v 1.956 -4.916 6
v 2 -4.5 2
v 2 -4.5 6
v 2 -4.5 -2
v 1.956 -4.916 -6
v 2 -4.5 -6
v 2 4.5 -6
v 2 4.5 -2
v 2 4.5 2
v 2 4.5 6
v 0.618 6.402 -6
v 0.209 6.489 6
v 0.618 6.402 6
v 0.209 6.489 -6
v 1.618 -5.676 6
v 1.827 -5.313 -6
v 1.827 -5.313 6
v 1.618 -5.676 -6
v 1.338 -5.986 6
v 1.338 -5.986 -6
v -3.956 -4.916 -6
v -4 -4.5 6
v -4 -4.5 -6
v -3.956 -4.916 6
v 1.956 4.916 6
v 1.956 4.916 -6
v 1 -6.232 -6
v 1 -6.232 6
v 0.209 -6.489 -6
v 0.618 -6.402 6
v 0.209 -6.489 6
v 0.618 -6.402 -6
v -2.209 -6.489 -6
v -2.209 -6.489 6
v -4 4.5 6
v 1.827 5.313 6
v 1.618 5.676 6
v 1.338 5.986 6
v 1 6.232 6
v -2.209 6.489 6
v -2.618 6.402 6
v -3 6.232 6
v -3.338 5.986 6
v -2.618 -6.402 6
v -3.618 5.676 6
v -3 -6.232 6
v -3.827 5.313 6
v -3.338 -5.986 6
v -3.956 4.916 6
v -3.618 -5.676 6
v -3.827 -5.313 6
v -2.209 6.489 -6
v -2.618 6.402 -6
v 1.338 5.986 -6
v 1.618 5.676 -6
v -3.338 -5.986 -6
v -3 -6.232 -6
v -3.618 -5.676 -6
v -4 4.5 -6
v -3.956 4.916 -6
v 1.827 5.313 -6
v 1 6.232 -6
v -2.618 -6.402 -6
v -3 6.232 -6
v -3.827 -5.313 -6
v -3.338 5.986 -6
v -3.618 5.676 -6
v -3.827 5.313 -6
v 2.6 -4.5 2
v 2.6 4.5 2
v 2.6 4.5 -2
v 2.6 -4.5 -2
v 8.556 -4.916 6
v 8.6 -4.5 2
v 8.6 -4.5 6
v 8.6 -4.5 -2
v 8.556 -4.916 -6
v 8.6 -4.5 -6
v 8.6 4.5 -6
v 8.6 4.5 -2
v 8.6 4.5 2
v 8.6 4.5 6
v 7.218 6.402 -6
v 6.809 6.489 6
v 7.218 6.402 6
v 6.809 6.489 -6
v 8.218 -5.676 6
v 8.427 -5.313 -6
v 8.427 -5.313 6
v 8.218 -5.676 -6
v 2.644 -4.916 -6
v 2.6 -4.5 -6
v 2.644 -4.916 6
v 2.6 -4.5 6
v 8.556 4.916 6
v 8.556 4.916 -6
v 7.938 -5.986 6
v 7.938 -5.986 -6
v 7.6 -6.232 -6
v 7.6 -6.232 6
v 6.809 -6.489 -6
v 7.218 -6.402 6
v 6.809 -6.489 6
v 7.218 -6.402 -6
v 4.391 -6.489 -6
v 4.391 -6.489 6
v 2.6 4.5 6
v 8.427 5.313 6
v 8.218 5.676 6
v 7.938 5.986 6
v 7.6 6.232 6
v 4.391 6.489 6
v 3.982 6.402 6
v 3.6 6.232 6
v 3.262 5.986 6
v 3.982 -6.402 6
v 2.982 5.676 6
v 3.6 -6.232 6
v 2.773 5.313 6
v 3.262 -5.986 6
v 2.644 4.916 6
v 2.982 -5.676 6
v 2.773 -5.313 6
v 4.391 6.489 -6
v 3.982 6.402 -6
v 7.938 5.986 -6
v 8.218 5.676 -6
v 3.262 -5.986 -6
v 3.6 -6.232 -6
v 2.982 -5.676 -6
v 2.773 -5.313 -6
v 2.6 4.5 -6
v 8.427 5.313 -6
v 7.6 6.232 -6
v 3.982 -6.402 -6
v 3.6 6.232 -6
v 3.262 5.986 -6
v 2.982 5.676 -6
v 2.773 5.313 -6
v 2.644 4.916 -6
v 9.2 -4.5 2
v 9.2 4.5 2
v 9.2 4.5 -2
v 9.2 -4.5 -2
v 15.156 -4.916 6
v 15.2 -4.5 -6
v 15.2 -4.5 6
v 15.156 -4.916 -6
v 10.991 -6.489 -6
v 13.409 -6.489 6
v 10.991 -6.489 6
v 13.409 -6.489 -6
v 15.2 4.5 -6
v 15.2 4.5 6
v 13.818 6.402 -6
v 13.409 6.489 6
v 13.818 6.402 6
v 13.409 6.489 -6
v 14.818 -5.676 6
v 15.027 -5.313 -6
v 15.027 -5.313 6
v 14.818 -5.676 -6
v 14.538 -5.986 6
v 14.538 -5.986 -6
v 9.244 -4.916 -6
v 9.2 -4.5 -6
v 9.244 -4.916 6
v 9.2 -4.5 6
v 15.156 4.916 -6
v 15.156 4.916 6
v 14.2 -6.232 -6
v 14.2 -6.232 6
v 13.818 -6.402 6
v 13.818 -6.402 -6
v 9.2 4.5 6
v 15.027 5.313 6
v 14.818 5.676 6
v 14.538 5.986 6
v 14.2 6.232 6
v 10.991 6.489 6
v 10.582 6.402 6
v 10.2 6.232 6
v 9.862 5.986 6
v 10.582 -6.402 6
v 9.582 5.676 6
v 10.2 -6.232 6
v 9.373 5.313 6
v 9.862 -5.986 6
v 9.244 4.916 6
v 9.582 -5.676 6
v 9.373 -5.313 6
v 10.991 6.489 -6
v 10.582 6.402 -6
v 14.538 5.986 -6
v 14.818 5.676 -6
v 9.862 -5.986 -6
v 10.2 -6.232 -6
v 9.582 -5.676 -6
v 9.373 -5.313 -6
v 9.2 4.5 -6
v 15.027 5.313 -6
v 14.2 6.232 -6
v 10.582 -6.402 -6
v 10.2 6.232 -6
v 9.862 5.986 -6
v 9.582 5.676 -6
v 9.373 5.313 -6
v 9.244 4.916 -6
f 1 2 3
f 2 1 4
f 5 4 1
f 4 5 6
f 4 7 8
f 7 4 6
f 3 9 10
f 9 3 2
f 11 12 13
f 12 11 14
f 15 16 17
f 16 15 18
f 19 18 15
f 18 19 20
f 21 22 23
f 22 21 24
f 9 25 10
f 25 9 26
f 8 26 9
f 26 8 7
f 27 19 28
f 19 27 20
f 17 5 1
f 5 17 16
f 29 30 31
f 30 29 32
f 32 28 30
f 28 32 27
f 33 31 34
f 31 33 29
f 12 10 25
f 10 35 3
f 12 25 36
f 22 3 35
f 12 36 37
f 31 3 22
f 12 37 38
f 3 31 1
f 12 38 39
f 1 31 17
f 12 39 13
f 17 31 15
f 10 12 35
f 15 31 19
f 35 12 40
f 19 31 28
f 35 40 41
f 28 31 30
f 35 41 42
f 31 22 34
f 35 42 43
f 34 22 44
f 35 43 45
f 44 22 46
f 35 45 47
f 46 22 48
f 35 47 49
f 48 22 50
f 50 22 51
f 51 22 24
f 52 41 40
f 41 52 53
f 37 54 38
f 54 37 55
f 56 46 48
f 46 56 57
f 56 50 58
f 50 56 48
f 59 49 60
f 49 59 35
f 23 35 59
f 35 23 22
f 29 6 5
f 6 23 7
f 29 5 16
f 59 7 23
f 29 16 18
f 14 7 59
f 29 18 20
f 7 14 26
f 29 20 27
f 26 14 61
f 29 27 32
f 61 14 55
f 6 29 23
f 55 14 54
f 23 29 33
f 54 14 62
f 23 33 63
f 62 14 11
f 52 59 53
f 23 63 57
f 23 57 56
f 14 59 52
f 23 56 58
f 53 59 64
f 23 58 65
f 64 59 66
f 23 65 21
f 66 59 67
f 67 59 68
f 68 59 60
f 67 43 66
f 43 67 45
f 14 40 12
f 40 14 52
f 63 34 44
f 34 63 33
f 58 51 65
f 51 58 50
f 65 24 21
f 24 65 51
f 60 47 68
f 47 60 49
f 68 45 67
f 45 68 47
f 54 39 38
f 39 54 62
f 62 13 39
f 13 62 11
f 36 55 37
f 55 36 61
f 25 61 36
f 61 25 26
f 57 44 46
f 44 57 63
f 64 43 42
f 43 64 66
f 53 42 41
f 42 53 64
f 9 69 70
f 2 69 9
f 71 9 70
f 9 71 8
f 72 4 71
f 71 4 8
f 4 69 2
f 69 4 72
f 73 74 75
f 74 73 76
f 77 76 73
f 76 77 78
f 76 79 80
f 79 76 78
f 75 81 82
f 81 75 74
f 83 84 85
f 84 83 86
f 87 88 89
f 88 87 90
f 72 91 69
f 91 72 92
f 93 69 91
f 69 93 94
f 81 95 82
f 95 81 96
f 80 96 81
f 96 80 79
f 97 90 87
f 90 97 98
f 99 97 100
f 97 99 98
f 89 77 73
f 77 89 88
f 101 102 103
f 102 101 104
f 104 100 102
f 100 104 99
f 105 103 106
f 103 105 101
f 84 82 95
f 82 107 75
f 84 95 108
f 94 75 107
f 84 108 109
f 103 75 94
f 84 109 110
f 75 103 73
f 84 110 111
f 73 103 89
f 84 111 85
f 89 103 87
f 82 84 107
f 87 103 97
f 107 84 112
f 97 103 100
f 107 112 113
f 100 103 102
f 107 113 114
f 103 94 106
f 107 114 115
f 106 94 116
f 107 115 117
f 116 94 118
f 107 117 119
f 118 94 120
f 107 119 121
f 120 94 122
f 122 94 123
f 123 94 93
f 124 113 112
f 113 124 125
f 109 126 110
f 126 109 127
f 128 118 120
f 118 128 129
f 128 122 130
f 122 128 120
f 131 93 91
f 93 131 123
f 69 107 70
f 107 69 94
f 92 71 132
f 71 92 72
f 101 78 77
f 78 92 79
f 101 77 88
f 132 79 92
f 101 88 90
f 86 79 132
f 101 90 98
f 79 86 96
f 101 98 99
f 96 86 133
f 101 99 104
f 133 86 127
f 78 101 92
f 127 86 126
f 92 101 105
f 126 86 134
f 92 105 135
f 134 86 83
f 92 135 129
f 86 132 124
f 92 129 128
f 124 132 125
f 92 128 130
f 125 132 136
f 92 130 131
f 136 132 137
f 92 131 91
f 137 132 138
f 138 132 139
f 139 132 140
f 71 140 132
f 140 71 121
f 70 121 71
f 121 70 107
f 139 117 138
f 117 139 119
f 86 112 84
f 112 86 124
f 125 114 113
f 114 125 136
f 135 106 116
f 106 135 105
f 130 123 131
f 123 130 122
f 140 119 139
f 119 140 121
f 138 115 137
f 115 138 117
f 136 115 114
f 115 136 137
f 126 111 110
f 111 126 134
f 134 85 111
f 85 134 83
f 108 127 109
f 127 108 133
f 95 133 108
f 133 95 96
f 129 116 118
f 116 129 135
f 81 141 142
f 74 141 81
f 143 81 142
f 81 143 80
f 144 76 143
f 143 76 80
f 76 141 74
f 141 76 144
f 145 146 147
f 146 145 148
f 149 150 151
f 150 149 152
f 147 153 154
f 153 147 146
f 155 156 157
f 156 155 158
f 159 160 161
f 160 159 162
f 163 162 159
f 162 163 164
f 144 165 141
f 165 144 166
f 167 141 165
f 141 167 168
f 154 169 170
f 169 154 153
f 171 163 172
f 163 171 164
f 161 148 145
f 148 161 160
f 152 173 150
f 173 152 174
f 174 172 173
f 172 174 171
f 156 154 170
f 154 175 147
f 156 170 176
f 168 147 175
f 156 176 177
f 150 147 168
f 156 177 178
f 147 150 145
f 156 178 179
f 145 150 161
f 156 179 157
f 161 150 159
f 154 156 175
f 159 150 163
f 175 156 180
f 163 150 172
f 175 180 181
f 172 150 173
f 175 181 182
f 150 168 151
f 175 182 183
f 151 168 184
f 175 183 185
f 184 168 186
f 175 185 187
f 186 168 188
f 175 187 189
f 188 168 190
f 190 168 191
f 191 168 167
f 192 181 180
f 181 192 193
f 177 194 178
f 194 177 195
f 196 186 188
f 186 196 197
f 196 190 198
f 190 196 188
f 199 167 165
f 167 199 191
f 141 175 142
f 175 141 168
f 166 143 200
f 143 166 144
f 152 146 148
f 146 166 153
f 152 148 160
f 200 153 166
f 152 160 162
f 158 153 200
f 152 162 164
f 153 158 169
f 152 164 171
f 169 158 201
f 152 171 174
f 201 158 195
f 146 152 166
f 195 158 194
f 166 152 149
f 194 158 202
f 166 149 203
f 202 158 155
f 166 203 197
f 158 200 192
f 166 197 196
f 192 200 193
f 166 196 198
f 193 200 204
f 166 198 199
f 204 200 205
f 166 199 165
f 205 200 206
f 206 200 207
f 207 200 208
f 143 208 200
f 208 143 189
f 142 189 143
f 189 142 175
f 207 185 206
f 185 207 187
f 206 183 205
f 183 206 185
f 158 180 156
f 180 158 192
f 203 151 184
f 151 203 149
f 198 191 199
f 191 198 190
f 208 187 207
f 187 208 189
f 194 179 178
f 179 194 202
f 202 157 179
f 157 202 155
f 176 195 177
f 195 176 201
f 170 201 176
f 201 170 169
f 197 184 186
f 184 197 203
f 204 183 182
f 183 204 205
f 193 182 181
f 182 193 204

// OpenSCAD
$fn=30;
height=12;
radius=2;
union(){
    hull(){
        translate([0,-4.5,0])cylinder(r=radius,h=height, center=true);
        translate([-2,4.5,0])cylinder(r=radius,h=height, center=true);
        translate([0,4.5,0])cylinder(r=radius,h=height, center=true);
        translate([-2,-4.5,0])cylinder(r=radius,h=height, center=true);
  }
  translate([2.3,0,0])cube([radius/3,radius+7,radius+2],center=true);
   translate([6.6,0,0]) hull(){
        translate([0,-4.5,0])cylinder(r=radius,h=height, center=true);
        translate([-2,4.5,0])cylinder(r=radius,h=height, center=true);
        translate([0,4.5,0])cylinder(r=radius,h=height, center=true);
        translate([-2,-4.5,0])cylinder(r=radius,h=height, center=true);
  }translate([8.9,0,0])cube([radius/3,radius+7,radius+2],center=true);
   translate([13.2,0,0]) hull(){
        translate([0,-4.5,0])cylinder(r=radius,h=height, center=true);
        translate([-2,4.5,0])cylinder(r=radius,h=height, center=true);
        translate([0,4.5,0])cylinder(r=radius,h=height, center=true);
        translate([-2,-4.5,0])cylinder(r=radius,h=height, center=true);
  }
  
}
